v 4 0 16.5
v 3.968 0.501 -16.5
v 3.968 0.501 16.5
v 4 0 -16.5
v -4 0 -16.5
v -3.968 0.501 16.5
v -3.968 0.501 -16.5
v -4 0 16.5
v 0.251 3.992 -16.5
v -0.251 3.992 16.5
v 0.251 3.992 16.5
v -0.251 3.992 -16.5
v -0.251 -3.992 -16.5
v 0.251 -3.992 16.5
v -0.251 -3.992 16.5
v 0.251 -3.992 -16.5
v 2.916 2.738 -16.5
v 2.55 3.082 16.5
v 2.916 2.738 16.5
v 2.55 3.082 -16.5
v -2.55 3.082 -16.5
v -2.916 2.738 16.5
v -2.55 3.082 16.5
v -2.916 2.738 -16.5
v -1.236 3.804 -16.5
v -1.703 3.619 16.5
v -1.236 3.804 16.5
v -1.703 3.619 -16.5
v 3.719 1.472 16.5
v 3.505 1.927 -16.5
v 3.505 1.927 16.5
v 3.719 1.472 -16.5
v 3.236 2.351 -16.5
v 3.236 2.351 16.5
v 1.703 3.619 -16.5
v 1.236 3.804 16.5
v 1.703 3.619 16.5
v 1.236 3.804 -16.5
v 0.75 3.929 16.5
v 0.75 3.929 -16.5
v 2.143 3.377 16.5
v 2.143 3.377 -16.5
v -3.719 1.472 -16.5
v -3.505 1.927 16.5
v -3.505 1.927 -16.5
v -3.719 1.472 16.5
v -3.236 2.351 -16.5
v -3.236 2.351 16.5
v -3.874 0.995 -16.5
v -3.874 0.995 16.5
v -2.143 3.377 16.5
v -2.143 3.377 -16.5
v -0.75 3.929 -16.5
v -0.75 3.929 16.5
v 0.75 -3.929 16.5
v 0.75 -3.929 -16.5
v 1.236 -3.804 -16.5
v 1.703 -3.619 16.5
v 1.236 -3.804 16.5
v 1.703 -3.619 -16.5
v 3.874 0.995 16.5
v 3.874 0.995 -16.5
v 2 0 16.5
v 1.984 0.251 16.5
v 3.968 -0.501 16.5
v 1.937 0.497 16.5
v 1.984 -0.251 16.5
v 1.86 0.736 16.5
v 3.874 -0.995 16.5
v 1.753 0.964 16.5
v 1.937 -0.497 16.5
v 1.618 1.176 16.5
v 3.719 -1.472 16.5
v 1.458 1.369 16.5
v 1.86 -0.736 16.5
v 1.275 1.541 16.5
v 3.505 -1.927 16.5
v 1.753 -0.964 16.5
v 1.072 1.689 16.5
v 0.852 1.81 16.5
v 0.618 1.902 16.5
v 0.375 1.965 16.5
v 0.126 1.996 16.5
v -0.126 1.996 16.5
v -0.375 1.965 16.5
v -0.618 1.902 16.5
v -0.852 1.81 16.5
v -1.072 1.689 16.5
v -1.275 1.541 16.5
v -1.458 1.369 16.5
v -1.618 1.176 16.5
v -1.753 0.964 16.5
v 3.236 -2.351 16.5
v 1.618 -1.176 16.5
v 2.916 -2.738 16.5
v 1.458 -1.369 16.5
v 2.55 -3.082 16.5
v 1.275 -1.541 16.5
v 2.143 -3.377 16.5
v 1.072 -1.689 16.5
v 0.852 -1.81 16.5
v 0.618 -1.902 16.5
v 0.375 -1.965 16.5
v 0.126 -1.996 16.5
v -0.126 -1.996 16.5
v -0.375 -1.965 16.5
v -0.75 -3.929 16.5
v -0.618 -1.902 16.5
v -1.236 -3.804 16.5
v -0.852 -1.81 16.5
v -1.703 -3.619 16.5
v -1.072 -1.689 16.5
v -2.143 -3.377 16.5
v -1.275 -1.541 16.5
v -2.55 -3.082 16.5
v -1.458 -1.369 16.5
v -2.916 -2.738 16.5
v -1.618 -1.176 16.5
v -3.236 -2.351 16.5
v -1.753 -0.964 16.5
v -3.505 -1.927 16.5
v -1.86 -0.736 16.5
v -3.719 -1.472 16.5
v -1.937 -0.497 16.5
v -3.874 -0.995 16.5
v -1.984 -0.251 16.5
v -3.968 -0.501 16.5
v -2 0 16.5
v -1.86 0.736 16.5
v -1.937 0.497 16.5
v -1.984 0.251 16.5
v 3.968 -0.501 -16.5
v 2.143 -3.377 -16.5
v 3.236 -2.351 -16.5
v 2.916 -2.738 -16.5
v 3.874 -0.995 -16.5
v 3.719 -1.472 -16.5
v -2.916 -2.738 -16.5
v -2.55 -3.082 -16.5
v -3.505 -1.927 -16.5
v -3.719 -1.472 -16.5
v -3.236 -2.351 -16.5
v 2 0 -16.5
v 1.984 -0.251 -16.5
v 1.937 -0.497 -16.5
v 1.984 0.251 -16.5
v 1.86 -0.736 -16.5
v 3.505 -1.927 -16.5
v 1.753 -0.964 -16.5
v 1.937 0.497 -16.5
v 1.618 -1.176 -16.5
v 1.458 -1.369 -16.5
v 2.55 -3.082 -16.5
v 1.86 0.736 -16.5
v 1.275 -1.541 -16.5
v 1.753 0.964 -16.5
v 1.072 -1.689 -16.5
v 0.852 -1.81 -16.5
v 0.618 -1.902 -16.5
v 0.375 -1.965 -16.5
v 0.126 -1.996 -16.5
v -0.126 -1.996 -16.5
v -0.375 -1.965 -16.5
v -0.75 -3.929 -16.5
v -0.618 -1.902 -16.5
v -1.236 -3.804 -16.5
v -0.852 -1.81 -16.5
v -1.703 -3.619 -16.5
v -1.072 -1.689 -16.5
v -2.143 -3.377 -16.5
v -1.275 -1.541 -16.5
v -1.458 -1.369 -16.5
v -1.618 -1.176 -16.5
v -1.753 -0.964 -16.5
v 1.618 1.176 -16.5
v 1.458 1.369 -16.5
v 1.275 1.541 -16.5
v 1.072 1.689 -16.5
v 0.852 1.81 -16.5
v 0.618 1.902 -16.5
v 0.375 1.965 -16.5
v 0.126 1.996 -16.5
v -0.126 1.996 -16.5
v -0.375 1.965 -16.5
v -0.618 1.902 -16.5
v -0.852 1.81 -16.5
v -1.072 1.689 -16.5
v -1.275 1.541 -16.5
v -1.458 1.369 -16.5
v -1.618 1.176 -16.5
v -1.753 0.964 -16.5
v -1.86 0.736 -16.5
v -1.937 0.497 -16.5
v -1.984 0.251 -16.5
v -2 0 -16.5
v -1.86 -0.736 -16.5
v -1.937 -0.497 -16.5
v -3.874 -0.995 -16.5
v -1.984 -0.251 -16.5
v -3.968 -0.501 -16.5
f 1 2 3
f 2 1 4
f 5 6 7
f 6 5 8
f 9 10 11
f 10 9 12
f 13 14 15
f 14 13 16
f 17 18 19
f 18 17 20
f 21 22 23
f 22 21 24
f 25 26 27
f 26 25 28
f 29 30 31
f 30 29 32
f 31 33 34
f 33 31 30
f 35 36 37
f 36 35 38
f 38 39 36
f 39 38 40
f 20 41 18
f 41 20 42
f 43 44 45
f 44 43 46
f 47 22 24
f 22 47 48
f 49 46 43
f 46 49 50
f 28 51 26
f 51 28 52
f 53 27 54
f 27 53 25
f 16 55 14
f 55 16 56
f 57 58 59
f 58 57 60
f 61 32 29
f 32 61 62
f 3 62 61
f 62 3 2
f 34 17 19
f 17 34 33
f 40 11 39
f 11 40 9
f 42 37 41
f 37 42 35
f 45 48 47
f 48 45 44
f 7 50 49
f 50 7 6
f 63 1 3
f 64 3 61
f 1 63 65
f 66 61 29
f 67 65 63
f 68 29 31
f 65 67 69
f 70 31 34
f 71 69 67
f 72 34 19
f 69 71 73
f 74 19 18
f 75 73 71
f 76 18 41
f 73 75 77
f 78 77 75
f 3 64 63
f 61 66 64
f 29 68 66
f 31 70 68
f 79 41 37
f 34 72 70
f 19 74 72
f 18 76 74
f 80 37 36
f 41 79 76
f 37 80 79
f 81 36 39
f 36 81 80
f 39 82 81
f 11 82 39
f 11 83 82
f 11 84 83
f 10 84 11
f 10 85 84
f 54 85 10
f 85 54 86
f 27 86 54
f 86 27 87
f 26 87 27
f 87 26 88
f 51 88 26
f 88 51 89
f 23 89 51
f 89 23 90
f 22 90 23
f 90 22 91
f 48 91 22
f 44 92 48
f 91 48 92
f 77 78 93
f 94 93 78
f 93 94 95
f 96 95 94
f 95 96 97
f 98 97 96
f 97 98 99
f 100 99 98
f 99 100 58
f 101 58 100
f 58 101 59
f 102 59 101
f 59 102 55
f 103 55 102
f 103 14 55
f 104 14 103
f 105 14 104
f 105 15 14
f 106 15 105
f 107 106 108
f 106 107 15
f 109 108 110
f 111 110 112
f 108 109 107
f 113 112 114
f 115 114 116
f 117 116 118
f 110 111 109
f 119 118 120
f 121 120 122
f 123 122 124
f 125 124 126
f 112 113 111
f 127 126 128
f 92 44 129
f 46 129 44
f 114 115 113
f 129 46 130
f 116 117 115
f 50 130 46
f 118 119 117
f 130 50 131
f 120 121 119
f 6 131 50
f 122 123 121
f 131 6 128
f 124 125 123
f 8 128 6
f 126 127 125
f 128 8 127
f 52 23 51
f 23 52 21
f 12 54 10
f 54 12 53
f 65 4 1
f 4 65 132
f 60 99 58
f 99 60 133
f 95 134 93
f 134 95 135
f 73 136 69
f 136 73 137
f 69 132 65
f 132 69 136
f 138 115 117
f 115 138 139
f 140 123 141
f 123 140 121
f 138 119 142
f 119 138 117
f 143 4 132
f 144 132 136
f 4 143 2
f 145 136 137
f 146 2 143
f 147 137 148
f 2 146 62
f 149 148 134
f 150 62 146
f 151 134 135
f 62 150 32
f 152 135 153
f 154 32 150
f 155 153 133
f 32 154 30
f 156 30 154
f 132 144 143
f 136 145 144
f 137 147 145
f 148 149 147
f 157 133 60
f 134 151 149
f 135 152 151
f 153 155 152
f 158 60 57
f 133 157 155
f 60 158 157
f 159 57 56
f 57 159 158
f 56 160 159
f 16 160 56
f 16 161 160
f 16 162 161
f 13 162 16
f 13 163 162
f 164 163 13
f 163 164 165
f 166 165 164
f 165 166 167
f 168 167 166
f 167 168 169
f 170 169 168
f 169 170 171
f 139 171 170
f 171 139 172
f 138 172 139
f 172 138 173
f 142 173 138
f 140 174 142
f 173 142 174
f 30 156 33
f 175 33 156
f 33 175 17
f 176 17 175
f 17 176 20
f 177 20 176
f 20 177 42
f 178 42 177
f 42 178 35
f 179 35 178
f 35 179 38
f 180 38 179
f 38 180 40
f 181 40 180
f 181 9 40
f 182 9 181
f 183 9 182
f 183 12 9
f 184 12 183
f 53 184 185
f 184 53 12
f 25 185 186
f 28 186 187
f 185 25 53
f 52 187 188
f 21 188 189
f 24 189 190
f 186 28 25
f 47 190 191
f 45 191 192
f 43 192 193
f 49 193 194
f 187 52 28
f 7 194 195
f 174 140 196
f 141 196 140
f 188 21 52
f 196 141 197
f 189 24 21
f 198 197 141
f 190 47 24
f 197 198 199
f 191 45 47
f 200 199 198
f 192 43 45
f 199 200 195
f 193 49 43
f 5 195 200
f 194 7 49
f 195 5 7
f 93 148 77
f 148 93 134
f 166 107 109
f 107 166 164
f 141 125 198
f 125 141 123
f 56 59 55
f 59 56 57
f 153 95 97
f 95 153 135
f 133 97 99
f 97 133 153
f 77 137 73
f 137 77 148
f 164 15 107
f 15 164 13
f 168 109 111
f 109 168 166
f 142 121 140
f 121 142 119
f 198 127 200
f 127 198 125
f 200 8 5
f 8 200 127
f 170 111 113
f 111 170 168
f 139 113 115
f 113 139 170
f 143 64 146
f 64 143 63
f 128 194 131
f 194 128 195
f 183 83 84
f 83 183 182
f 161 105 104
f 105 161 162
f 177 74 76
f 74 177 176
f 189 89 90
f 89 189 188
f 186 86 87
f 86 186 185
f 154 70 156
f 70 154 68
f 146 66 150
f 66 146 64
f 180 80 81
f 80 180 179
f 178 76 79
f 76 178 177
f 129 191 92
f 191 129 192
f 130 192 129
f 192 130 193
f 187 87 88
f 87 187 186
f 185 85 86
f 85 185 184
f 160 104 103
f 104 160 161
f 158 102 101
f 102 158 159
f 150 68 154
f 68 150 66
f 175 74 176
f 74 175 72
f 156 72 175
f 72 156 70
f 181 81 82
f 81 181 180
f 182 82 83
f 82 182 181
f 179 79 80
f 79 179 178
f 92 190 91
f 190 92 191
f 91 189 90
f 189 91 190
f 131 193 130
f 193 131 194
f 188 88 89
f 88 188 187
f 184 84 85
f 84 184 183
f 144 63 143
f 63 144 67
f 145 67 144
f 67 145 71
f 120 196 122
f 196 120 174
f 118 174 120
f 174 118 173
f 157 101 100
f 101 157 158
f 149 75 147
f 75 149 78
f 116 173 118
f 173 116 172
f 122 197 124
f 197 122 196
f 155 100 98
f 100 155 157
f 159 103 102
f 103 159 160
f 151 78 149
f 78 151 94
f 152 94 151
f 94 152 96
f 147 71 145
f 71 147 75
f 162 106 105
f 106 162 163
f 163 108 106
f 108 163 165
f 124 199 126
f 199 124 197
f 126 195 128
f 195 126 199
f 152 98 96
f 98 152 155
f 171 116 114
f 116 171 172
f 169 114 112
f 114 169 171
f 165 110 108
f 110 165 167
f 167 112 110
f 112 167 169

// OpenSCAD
$fn = 50;


difference() {
	union() {
		translate(v = [0, 0, -16.5000000000]) {
			cylinder(h = 33, r = 4.0000000000);
		}
	}
	union() {
		translate(v = [0, 0, -100.0000000000]) {
			cylinder(h = 200, r = 2);
		}
	}
}
